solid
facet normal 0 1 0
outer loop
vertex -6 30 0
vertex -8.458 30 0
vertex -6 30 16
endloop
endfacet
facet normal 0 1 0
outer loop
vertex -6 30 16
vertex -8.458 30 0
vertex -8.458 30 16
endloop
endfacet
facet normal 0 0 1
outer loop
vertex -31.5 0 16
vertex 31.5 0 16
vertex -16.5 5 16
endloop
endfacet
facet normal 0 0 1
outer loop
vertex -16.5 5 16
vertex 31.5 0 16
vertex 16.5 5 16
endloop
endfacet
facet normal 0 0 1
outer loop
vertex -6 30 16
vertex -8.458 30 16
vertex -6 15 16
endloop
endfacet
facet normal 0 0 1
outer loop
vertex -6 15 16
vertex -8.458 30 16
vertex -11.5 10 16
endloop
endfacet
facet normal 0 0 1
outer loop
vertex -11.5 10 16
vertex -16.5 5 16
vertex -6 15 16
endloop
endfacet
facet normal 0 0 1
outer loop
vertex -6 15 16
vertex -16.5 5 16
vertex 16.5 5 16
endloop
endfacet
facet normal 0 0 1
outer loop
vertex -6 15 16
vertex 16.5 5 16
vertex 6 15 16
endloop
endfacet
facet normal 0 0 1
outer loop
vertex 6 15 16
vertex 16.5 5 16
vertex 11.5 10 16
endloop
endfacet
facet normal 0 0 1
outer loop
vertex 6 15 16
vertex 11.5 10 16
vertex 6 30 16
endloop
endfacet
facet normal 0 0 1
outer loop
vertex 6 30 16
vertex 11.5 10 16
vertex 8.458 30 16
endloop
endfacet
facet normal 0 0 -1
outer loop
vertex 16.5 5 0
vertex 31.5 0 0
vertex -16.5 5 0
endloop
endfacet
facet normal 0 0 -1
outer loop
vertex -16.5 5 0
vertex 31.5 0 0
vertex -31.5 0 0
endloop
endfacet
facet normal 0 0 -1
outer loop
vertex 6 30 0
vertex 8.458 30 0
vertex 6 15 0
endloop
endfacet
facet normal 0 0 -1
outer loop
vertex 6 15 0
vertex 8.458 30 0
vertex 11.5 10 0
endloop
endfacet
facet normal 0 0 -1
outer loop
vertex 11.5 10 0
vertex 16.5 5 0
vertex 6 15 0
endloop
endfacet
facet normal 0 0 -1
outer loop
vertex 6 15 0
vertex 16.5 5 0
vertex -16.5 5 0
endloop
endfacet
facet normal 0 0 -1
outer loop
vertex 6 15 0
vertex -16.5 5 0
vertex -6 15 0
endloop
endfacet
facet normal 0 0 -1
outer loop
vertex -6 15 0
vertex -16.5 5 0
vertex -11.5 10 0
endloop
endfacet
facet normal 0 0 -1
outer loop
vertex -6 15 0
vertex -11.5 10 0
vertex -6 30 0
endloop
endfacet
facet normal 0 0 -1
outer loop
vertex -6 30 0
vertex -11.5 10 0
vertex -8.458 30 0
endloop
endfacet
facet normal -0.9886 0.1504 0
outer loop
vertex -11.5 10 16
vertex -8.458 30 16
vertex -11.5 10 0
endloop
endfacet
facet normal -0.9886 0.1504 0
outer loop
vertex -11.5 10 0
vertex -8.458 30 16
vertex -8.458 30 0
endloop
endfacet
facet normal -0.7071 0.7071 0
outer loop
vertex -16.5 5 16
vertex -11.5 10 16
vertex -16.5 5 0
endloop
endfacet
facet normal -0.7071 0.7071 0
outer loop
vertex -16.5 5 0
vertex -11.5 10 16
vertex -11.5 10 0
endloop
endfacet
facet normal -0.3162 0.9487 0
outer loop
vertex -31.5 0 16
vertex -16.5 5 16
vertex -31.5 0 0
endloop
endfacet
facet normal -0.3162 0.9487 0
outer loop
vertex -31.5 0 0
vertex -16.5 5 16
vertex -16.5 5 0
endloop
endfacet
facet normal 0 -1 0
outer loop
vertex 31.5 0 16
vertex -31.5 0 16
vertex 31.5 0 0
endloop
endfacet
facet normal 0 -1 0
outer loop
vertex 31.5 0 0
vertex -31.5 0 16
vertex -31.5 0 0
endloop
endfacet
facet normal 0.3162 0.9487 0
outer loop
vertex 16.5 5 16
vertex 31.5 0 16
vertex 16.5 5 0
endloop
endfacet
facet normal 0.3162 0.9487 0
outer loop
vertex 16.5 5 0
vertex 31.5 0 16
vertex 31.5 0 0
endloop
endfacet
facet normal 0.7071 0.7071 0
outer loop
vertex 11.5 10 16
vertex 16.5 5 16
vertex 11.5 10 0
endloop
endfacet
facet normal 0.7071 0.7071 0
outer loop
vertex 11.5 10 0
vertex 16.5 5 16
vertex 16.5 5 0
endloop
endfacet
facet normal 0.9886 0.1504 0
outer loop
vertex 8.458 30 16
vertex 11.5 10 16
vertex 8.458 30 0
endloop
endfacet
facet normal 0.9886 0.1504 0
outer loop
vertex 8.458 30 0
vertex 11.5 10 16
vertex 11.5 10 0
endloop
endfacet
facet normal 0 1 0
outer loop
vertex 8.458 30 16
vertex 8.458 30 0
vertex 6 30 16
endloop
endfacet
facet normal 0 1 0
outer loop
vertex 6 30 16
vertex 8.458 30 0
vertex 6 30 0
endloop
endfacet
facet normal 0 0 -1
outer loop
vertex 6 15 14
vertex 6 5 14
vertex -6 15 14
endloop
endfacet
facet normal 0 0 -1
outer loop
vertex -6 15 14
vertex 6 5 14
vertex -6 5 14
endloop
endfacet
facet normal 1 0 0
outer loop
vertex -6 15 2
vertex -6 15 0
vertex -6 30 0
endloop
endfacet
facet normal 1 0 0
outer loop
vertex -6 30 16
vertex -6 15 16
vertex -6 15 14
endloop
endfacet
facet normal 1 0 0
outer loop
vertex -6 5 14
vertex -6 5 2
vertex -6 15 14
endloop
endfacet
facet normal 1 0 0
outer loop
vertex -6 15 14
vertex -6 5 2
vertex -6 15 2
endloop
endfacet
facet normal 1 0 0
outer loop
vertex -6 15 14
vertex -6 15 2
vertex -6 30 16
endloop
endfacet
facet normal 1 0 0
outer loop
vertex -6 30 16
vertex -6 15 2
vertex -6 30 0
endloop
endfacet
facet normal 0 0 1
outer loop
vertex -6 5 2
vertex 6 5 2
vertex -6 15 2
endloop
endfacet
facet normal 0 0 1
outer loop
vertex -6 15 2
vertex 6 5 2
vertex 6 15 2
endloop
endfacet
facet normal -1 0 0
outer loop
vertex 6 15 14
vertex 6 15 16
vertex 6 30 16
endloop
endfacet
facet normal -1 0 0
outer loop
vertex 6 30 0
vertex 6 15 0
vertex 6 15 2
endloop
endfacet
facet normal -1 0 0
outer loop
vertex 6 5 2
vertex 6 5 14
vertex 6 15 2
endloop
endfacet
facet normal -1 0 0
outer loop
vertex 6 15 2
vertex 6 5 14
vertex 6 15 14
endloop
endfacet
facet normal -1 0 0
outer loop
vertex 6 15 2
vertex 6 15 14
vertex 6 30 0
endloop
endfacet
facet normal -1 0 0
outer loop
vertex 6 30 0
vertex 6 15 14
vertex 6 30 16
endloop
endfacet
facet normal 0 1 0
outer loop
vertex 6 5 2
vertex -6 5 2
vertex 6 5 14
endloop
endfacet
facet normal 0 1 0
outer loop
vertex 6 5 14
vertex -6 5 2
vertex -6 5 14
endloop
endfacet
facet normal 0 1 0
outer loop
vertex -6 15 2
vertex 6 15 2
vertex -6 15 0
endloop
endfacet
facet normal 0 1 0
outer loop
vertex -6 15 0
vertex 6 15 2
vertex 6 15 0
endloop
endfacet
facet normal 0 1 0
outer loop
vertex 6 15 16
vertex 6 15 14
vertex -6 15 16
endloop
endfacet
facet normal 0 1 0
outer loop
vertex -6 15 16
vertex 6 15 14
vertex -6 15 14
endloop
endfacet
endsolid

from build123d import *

# Parameters (mm, degrees)
EXTRUDE_2_DEPTH     = 16
SKETCH_3_W          = 12
SKETCH_3_H          = 12
CUT_EXTRUDE_3_DEPTH = 25
SKETCH_6_W          = 6
SKETCH_6_H          = 15
CUT_EXTRUDE_4_DEPTH = 25


with BuildPart() as part:
    # 스케치1 → 보스-돌출2 (new body)
    with BuildSketch(Plane.XY):
        Polygon((31.5, 0), (-31.5, 0), (-16.5, 5), (-11.5, 10), (-8.457539251, 30), (8.457539251, 30), (11.5, 10), (16.5, 5), align=None)
    extrude(amount=EXTRUDE_2_DEPTH)

    # 스케치3 → 컷-돌출3 (cut)
    with BuildSketch(Plane(origin=(0, 30, 0), x_dir=(1, 0, 0), z_dir=(0, 1, 0))):
        with Locations((0, -8)):
            Rectangle(SKETCH_3_W, SKETCH_3_H)
    extrude(amount=-CUT_EXTRUDE_3_DEPTH, mode=Mode.SUBTRACT)

    # 스케치6 → 컷-돌출4 (cut)
    with BuildSketch(Plane.XY.offset(16)):
        with Locations((3, 22.5)):
            Rectangle(SKETCH_6_W, SKETCH_6_H)
        with Locations((-3, 22.5)):
            Rectangle(SKETCH_6_W, SKETCH_6_H)
    extrude(amount=-CUT_EXTRUDE_4_DEPTH, mode=Mode.SUBTRACT)


solid = part.part
